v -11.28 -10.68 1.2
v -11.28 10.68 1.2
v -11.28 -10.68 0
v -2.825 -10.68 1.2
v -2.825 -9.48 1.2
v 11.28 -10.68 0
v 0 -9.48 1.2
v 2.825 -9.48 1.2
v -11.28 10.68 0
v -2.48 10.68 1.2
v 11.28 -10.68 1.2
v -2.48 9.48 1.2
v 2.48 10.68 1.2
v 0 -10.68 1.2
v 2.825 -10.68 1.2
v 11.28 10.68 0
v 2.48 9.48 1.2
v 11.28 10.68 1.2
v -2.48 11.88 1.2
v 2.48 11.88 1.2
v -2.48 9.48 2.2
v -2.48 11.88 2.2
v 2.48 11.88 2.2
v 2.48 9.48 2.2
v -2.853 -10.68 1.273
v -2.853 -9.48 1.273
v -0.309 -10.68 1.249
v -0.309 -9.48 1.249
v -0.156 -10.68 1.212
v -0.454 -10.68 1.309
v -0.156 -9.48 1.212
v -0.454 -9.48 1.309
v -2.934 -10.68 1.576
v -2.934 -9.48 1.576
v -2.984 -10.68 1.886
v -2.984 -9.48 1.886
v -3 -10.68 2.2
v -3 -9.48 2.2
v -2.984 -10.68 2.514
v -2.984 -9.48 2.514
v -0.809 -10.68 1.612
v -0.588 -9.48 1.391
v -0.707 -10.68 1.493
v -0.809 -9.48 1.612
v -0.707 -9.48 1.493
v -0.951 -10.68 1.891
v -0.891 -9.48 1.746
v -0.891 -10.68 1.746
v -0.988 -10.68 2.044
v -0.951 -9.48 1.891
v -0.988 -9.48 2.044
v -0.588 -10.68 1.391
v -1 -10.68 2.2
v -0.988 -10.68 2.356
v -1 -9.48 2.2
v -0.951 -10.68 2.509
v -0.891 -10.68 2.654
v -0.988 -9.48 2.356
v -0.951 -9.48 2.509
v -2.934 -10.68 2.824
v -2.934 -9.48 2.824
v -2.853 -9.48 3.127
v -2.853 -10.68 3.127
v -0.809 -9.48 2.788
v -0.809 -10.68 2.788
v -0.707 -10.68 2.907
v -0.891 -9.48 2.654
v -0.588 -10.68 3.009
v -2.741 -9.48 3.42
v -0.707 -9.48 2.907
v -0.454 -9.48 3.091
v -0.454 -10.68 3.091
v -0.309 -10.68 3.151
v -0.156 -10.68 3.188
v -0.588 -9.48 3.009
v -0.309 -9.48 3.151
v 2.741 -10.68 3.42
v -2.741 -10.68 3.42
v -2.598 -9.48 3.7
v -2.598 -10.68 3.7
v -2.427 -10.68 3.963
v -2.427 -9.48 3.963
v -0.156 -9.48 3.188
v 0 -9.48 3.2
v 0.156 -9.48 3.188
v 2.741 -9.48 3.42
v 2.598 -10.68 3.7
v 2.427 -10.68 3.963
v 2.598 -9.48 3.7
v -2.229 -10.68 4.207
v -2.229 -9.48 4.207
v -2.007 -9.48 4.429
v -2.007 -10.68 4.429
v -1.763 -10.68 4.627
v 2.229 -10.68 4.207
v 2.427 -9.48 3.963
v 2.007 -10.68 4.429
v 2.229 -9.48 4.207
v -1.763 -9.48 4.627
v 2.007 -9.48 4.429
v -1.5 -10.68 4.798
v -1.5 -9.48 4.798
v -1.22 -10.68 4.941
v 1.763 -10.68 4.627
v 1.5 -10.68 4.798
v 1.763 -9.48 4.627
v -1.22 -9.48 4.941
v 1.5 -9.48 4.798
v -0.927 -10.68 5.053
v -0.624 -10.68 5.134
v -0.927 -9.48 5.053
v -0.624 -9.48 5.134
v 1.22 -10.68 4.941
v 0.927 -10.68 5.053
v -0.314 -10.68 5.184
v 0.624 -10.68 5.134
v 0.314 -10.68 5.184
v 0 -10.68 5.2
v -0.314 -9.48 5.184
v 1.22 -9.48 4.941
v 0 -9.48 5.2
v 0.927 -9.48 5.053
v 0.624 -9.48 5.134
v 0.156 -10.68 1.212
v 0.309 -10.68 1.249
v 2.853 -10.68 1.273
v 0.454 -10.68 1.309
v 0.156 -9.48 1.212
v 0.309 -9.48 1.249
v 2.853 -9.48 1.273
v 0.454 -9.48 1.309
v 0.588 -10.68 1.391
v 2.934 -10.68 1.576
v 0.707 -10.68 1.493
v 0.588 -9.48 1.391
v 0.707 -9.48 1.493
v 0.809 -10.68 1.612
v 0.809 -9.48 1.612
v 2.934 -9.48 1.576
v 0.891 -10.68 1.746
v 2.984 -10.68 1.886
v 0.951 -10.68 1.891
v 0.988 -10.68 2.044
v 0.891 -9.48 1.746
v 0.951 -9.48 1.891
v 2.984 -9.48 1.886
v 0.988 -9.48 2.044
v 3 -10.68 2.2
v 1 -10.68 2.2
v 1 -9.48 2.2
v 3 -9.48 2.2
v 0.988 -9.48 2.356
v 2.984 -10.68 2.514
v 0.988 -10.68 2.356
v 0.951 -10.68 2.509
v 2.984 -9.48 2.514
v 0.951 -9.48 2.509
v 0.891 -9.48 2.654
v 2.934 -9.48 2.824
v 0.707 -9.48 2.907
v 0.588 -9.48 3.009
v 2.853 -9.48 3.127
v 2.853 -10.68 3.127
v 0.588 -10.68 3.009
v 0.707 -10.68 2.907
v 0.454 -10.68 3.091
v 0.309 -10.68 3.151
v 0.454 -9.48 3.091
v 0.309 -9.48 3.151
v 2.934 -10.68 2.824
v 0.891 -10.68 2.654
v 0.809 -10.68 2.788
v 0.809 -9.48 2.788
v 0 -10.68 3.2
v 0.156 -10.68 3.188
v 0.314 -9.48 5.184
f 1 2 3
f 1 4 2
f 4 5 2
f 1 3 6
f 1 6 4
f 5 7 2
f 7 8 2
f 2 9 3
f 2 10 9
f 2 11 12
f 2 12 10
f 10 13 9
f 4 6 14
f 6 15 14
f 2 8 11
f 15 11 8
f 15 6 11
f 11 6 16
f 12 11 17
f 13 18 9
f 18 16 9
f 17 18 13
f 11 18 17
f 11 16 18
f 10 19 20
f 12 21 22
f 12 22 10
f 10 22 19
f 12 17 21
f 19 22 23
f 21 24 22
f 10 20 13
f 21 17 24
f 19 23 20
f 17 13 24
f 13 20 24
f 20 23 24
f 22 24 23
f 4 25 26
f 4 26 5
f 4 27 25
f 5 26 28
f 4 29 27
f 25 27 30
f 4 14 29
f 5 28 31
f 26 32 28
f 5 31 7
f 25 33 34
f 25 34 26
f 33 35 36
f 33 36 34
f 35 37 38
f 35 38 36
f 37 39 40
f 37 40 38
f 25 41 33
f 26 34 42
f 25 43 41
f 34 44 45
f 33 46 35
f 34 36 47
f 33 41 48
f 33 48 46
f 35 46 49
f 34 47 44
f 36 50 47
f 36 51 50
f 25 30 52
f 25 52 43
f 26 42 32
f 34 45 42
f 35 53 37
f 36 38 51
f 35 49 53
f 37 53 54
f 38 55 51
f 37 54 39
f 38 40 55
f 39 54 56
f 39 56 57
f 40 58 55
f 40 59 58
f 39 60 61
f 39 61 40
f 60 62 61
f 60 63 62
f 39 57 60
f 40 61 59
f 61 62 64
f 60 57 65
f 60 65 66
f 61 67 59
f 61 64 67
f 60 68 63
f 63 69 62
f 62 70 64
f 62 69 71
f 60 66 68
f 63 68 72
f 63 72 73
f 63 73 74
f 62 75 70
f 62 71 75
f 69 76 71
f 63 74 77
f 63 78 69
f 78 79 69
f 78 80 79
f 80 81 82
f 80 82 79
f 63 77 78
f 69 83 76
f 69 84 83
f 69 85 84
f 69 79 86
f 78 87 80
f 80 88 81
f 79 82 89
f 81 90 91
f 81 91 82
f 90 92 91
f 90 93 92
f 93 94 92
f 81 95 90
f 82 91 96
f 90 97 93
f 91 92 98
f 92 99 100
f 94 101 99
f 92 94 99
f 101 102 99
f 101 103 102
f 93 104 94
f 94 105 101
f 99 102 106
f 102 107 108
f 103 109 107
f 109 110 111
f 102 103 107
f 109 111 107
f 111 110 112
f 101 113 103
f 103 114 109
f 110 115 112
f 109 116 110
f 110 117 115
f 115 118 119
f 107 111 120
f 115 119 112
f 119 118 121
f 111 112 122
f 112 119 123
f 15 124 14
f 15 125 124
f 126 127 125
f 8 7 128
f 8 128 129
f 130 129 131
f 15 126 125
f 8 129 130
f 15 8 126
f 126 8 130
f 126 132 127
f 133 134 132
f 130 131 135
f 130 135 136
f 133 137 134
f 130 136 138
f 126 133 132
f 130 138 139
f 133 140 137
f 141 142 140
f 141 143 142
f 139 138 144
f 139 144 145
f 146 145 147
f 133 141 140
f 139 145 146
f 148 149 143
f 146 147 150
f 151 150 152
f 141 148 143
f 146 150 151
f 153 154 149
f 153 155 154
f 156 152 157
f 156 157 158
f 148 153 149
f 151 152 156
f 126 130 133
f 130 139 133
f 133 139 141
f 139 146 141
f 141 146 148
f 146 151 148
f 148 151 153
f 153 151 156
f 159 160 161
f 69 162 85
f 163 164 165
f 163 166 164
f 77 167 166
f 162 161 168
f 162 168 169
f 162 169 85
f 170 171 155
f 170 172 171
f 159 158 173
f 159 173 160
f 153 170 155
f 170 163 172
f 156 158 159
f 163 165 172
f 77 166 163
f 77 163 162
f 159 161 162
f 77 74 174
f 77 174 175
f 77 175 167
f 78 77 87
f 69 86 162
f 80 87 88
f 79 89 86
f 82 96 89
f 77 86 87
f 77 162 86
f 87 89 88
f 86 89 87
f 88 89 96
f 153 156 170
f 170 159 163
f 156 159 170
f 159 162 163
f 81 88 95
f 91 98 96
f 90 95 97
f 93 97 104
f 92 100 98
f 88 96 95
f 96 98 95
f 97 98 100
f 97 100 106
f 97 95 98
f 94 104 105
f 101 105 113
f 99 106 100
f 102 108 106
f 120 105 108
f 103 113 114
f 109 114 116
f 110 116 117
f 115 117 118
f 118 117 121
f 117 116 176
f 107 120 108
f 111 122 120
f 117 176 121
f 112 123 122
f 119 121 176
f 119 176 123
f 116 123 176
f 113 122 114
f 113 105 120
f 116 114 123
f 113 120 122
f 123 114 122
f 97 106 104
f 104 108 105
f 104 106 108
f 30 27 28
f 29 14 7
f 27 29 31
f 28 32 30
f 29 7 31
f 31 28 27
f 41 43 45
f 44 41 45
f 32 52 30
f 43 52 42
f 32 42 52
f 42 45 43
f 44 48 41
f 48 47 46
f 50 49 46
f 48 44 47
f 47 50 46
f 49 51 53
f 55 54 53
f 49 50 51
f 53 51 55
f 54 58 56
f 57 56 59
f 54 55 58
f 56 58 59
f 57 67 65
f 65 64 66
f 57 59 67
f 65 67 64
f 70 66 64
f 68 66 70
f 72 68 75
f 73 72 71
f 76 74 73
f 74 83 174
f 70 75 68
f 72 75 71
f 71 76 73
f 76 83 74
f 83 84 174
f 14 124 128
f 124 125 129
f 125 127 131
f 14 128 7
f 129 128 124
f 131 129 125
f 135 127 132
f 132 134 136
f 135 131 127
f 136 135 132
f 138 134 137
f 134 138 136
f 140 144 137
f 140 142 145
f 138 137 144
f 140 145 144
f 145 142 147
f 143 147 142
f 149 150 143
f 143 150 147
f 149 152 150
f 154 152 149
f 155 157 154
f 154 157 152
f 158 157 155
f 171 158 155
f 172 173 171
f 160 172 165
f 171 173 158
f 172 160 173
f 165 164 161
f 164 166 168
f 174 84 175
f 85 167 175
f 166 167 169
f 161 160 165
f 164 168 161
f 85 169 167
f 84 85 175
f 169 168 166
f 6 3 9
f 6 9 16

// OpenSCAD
// ============================================================
// 하우징 Peltier v2 - housing_peltier_closure1_v2 (별도 부품)
// housing_erm_closure1_v2를 그대로 가져옴
// ============================================================

module housing_peltier_closure1_v2() {
    plate_w = 22.56; // 가로
    plate_h = 21.36; // 세로
    plate_t = 1.2;   // 판재 두께

    // 돌출 직육면체: 가로 4.96mm, 높이(Z) 1.16mm.
    // 세로(Y)는 +Y쪽 가장자리 기준으로 면 위에 1.2mm + 바깥으로 1.2mm = 총 2.4mm
    tab_w        = 4.96; // 가로
    tab_protrude = 1.2;  // 3D 기준 +Y 방향으로 면 바깥으로 튀어나오는 길이
    tab_overlap  = 1.2;  // 면 위에 걸쳐있는 길이 (+Y쪽 가장자리에서 안쪽으로)
    tab_len      = tab_protrude + tab_overlap; // 세로 전체 길이 (2.4mm)
    tab_z        = 1;    // 돌출부가 판재 위로 추가로 튀어나오는 두께(높이)

    // -Y쪽 나사 보스: 구멍은 Y축 방향으로 관통, X는 정중앙(0).
    // 안쪽 구멍 지름 2mm, 둘러싼 두께 2mm -> 바깥지름 6mm. 가장자리에서 안쪽으로 1.2mm.
    boss_screw_d = 2;
    boss_wall_t  = 2;
    boss_d       = boss_screw_d + 2 * boss_wall_t; // 6mm
    boss_len     = 1.2; // -Y 가장자리에서 안쪽(+Y)으로 들어간 길이
    boss_z       = plate_t + boss_d / 2 - 2; // 구멍 중심 기준 Z축 음수 방향으로 2mm 내림

    echo("[PeltierClosure1] tab_w =", tab_w, " tab_len =", tab_len, " tab_z =", tab_z);
    echo("[PeltierClosure1] boss_d =", boss_d, " boss_len =", boss_len);

    difference() {
        union() {
            // 메인 평판
            color("gray")
                linear_extrude(height = plate_t)
                    square([plate_w, plate_h], center = true);

            // 돌출 직육면체 (4.96mm x 2.4mm x 1.16mm). +Y쪽 가장자리를 기준으로
            // 안쪽(면 위)으로 1.2mm, 바깥쪽(3D +Y 방향)으로 1.2mm 걸쳐 있음.
            color("SteelBlue")
                translate([0, plate_h / 2 - tab_overlap + tab_len / 2, plate_t])
                    linear_extrude(height = tab_z)
                        square([tab_w, tab_len], center = true);

            // -Y쪽 나사 보스 (바깥지름 6mm), 가장자리에서 안쪽으로 1.2mm
            color("SteelBlue")
                translate([0, -plate_h / 2 + boss_len, boss_z])
                    rotate([90, 0, 0])
                        cylinder(d = boss_d, h = boss_len, $fn = 60);
        }

        // 나사 구멍 (Y방향 관통, 보스를 지나 여유 있게)
        translate([0, -plate_h / 2 + boss_len + 0.1, boss_z])
            rotate([90, 0, 0])
                cylinder(d = boss_screw_d, h = boss_len + 0.2, $fn = 40);

        // 보스가 판재 아래(z<0)로 튀어나온 부분 제거
        translate([-plate_w, -plate_h, -100])
            cube([plate_w * 2, plate_h * 2, 100]);
    }
}

housing_peltier_closure1_v2();
